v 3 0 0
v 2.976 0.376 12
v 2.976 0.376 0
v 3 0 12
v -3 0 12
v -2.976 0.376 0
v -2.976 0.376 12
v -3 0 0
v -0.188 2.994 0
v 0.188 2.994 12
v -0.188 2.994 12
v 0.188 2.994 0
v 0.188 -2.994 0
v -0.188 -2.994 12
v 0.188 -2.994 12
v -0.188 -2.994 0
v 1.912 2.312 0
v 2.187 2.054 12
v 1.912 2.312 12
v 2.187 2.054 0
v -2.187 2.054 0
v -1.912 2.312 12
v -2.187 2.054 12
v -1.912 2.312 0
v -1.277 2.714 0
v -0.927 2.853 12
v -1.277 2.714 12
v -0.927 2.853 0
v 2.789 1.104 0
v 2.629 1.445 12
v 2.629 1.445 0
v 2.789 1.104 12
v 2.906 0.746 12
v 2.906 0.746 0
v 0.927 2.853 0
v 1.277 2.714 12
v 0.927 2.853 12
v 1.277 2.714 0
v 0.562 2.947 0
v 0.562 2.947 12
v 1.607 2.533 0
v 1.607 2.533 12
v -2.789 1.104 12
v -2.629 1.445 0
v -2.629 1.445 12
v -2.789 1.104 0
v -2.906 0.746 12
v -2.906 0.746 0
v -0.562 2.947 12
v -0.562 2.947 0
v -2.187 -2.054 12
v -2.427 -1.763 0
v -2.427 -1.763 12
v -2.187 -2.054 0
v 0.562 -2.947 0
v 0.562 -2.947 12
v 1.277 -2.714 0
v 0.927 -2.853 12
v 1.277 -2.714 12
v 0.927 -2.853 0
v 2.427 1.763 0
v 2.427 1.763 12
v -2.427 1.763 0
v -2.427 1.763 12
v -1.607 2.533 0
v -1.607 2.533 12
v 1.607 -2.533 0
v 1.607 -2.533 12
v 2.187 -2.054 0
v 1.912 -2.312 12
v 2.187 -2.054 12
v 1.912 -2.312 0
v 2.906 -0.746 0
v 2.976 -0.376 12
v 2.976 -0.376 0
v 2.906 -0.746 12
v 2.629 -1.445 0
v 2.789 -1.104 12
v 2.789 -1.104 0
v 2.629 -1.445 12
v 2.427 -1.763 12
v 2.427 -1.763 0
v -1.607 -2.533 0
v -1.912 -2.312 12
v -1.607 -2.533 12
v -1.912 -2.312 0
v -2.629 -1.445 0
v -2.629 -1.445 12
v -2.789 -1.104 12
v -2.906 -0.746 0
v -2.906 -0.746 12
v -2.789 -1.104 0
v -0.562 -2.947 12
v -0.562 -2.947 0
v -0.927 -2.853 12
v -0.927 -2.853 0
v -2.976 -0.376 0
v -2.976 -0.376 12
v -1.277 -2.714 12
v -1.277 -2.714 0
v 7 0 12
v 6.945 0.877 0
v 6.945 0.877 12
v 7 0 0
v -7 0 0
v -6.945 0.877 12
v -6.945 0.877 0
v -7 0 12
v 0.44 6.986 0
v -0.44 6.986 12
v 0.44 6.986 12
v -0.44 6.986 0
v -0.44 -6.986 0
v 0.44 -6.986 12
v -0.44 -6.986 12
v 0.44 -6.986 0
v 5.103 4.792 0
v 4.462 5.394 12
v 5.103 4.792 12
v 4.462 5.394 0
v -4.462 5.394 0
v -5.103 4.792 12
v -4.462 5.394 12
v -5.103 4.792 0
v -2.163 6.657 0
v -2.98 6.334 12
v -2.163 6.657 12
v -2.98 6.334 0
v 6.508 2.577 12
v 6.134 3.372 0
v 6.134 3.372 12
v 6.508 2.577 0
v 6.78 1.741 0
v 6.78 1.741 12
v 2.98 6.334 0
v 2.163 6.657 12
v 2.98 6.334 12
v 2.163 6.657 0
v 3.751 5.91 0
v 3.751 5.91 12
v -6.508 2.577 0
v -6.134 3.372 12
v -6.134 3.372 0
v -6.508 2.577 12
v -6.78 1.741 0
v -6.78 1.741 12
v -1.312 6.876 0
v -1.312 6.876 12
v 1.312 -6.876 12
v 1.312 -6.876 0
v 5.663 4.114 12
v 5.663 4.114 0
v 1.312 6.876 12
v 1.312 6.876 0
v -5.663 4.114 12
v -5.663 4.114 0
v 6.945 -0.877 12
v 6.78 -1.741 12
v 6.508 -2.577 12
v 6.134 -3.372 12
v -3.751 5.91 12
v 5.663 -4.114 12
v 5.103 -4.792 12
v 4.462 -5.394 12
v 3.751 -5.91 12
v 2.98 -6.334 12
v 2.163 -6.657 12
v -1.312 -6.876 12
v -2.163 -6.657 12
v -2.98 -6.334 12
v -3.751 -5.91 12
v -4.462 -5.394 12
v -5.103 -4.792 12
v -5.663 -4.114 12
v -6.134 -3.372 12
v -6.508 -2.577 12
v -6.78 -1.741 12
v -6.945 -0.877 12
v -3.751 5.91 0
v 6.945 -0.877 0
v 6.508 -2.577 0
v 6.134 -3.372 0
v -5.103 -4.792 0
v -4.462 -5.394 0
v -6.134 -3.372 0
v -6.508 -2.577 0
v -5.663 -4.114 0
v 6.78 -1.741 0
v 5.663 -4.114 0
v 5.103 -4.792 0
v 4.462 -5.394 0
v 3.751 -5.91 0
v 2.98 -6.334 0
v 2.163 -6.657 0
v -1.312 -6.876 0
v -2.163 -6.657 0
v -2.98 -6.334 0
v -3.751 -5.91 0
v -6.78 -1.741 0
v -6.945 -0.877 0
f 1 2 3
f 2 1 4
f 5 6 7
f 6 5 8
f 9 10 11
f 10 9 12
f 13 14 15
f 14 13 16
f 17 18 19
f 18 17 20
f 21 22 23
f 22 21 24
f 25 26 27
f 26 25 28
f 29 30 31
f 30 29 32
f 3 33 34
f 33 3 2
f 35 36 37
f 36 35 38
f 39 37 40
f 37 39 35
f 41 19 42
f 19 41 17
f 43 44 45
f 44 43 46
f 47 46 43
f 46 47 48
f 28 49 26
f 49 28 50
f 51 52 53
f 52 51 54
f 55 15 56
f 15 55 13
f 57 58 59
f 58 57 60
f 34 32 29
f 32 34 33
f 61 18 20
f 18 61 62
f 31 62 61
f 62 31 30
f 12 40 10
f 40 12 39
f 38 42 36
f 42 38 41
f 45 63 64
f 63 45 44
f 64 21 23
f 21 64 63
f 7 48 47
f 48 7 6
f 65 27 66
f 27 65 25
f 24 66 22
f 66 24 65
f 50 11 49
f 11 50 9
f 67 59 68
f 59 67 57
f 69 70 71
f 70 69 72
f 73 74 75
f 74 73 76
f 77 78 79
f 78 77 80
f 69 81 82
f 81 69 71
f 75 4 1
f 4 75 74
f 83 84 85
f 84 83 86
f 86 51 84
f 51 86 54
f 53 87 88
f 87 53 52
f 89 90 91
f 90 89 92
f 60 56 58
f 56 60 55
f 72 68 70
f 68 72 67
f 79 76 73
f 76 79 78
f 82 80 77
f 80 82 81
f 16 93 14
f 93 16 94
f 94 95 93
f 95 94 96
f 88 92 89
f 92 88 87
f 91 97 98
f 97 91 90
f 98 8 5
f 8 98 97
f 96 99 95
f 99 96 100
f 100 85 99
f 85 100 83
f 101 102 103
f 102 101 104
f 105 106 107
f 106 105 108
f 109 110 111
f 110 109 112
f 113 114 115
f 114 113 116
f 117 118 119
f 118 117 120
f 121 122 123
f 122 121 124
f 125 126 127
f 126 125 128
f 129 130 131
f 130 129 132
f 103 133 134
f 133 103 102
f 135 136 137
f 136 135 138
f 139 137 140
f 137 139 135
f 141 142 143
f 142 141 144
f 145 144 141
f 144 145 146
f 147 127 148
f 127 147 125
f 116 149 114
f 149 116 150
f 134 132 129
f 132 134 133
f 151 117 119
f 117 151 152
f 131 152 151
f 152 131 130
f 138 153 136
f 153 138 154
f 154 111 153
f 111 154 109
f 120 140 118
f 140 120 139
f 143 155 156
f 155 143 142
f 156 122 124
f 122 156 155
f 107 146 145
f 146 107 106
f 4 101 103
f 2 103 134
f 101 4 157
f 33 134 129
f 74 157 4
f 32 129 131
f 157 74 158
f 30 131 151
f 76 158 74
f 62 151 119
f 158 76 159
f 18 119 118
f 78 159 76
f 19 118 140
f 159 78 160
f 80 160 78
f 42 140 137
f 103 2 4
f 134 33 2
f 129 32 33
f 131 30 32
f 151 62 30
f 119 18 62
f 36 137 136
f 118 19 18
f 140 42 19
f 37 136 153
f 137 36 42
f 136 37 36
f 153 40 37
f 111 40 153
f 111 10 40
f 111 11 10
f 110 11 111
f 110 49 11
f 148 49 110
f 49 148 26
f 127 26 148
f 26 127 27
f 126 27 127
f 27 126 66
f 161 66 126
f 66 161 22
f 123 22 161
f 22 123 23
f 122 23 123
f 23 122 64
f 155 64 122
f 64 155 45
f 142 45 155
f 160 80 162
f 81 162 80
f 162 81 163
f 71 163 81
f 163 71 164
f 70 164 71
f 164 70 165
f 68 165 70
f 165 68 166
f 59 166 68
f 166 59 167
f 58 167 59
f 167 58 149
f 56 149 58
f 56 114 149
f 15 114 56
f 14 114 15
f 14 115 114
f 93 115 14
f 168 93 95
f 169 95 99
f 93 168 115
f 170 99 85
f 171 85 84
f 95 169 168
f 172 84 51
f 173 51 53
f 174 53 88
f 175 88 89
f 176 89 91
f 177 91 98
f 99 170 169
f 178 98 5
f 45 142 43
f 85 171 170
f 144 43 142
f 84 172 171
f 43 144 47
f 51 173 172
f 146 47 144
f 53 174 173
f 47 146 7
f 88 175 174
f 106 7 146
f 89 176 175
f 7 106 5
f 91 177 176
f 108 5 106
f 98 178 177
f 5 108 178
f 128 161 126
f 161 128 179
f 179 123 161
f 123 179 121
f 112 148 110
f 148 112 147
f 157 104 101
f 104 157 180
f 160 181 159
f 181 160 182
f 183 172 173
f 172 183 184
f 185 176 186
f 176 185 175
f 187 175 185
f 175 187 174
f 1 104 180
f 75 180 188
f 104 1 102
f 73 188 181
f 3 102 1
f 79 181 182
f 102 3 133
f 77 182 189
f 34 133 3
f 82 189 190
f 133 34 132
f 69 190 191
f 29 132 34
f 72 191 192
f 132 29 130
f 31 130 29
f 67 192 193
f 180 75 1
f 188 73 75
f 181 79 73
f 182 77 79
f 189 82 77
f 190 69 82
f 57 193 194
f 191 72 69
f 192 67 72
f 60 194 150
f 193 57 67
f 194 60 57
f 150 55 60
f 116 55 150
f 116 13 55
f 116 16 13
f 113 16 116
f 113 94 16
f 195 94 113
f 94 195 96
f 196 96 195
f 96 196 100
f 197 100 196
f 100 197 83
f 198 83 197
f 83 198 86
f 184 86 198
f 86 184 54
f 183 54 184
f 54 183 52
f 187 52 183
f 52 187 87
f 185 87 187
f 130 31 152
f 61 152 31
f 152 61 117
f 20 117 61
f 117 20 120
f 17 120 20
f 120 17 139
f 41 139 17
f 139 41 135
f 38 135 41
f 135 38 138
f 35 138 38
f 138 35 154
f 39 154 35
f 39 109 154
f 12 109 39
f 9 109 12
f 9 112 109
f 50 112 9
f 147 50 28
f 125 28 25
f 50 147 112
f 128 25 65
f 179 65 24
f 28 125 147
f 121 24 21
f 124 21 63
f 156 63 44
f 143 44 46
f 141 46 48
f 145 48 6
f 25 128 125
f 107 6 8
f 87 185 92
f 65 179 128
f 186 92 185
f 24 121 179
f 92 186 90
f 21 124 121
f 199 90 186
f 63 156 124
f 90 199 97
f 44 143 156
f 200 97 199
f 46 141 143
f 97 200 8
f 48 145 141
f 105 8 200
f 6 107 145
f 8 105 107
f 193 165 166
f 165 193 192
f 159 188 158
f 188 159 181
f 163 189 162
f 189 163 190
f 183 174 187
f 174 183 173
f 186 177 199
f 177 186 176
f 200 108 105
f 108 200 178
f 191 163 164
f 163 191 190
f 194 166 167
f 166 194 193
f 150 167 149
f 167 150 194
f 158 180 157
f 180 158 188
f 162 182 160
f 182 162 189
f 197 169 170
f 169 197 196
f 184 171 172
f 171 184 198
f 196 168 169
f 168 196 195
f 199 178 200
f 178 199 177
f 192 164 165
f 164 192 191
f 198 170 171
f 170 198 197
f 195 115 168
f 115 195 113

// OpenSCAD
$fn = 50;


difference() {
	union() {
		cylinder(h = 12, r = 7.0000000000);
	}
	union() {
		translate(v = [0.0000000000, 0.0000000000, -100.0000000000]) {
			cylinder(h = 200, r = 3.0000000000);
		}
		translate(v = [0.0000000000, 0.0000000000, -100.0000000000]) {
			cylinder(h = 200, r = 3.0000000000);
		}
		translate(v = [0.0000000000, 0.0000000000, -100.0000000000]) {
			cylinder(h = 200, r = 3.0000000000);
		}
		translate(v = [0.0000000000, 0.0000000000, -100.0000000000]) {
			cylinder(h = 200, r = 3.0000000000);
		}
	}
}
